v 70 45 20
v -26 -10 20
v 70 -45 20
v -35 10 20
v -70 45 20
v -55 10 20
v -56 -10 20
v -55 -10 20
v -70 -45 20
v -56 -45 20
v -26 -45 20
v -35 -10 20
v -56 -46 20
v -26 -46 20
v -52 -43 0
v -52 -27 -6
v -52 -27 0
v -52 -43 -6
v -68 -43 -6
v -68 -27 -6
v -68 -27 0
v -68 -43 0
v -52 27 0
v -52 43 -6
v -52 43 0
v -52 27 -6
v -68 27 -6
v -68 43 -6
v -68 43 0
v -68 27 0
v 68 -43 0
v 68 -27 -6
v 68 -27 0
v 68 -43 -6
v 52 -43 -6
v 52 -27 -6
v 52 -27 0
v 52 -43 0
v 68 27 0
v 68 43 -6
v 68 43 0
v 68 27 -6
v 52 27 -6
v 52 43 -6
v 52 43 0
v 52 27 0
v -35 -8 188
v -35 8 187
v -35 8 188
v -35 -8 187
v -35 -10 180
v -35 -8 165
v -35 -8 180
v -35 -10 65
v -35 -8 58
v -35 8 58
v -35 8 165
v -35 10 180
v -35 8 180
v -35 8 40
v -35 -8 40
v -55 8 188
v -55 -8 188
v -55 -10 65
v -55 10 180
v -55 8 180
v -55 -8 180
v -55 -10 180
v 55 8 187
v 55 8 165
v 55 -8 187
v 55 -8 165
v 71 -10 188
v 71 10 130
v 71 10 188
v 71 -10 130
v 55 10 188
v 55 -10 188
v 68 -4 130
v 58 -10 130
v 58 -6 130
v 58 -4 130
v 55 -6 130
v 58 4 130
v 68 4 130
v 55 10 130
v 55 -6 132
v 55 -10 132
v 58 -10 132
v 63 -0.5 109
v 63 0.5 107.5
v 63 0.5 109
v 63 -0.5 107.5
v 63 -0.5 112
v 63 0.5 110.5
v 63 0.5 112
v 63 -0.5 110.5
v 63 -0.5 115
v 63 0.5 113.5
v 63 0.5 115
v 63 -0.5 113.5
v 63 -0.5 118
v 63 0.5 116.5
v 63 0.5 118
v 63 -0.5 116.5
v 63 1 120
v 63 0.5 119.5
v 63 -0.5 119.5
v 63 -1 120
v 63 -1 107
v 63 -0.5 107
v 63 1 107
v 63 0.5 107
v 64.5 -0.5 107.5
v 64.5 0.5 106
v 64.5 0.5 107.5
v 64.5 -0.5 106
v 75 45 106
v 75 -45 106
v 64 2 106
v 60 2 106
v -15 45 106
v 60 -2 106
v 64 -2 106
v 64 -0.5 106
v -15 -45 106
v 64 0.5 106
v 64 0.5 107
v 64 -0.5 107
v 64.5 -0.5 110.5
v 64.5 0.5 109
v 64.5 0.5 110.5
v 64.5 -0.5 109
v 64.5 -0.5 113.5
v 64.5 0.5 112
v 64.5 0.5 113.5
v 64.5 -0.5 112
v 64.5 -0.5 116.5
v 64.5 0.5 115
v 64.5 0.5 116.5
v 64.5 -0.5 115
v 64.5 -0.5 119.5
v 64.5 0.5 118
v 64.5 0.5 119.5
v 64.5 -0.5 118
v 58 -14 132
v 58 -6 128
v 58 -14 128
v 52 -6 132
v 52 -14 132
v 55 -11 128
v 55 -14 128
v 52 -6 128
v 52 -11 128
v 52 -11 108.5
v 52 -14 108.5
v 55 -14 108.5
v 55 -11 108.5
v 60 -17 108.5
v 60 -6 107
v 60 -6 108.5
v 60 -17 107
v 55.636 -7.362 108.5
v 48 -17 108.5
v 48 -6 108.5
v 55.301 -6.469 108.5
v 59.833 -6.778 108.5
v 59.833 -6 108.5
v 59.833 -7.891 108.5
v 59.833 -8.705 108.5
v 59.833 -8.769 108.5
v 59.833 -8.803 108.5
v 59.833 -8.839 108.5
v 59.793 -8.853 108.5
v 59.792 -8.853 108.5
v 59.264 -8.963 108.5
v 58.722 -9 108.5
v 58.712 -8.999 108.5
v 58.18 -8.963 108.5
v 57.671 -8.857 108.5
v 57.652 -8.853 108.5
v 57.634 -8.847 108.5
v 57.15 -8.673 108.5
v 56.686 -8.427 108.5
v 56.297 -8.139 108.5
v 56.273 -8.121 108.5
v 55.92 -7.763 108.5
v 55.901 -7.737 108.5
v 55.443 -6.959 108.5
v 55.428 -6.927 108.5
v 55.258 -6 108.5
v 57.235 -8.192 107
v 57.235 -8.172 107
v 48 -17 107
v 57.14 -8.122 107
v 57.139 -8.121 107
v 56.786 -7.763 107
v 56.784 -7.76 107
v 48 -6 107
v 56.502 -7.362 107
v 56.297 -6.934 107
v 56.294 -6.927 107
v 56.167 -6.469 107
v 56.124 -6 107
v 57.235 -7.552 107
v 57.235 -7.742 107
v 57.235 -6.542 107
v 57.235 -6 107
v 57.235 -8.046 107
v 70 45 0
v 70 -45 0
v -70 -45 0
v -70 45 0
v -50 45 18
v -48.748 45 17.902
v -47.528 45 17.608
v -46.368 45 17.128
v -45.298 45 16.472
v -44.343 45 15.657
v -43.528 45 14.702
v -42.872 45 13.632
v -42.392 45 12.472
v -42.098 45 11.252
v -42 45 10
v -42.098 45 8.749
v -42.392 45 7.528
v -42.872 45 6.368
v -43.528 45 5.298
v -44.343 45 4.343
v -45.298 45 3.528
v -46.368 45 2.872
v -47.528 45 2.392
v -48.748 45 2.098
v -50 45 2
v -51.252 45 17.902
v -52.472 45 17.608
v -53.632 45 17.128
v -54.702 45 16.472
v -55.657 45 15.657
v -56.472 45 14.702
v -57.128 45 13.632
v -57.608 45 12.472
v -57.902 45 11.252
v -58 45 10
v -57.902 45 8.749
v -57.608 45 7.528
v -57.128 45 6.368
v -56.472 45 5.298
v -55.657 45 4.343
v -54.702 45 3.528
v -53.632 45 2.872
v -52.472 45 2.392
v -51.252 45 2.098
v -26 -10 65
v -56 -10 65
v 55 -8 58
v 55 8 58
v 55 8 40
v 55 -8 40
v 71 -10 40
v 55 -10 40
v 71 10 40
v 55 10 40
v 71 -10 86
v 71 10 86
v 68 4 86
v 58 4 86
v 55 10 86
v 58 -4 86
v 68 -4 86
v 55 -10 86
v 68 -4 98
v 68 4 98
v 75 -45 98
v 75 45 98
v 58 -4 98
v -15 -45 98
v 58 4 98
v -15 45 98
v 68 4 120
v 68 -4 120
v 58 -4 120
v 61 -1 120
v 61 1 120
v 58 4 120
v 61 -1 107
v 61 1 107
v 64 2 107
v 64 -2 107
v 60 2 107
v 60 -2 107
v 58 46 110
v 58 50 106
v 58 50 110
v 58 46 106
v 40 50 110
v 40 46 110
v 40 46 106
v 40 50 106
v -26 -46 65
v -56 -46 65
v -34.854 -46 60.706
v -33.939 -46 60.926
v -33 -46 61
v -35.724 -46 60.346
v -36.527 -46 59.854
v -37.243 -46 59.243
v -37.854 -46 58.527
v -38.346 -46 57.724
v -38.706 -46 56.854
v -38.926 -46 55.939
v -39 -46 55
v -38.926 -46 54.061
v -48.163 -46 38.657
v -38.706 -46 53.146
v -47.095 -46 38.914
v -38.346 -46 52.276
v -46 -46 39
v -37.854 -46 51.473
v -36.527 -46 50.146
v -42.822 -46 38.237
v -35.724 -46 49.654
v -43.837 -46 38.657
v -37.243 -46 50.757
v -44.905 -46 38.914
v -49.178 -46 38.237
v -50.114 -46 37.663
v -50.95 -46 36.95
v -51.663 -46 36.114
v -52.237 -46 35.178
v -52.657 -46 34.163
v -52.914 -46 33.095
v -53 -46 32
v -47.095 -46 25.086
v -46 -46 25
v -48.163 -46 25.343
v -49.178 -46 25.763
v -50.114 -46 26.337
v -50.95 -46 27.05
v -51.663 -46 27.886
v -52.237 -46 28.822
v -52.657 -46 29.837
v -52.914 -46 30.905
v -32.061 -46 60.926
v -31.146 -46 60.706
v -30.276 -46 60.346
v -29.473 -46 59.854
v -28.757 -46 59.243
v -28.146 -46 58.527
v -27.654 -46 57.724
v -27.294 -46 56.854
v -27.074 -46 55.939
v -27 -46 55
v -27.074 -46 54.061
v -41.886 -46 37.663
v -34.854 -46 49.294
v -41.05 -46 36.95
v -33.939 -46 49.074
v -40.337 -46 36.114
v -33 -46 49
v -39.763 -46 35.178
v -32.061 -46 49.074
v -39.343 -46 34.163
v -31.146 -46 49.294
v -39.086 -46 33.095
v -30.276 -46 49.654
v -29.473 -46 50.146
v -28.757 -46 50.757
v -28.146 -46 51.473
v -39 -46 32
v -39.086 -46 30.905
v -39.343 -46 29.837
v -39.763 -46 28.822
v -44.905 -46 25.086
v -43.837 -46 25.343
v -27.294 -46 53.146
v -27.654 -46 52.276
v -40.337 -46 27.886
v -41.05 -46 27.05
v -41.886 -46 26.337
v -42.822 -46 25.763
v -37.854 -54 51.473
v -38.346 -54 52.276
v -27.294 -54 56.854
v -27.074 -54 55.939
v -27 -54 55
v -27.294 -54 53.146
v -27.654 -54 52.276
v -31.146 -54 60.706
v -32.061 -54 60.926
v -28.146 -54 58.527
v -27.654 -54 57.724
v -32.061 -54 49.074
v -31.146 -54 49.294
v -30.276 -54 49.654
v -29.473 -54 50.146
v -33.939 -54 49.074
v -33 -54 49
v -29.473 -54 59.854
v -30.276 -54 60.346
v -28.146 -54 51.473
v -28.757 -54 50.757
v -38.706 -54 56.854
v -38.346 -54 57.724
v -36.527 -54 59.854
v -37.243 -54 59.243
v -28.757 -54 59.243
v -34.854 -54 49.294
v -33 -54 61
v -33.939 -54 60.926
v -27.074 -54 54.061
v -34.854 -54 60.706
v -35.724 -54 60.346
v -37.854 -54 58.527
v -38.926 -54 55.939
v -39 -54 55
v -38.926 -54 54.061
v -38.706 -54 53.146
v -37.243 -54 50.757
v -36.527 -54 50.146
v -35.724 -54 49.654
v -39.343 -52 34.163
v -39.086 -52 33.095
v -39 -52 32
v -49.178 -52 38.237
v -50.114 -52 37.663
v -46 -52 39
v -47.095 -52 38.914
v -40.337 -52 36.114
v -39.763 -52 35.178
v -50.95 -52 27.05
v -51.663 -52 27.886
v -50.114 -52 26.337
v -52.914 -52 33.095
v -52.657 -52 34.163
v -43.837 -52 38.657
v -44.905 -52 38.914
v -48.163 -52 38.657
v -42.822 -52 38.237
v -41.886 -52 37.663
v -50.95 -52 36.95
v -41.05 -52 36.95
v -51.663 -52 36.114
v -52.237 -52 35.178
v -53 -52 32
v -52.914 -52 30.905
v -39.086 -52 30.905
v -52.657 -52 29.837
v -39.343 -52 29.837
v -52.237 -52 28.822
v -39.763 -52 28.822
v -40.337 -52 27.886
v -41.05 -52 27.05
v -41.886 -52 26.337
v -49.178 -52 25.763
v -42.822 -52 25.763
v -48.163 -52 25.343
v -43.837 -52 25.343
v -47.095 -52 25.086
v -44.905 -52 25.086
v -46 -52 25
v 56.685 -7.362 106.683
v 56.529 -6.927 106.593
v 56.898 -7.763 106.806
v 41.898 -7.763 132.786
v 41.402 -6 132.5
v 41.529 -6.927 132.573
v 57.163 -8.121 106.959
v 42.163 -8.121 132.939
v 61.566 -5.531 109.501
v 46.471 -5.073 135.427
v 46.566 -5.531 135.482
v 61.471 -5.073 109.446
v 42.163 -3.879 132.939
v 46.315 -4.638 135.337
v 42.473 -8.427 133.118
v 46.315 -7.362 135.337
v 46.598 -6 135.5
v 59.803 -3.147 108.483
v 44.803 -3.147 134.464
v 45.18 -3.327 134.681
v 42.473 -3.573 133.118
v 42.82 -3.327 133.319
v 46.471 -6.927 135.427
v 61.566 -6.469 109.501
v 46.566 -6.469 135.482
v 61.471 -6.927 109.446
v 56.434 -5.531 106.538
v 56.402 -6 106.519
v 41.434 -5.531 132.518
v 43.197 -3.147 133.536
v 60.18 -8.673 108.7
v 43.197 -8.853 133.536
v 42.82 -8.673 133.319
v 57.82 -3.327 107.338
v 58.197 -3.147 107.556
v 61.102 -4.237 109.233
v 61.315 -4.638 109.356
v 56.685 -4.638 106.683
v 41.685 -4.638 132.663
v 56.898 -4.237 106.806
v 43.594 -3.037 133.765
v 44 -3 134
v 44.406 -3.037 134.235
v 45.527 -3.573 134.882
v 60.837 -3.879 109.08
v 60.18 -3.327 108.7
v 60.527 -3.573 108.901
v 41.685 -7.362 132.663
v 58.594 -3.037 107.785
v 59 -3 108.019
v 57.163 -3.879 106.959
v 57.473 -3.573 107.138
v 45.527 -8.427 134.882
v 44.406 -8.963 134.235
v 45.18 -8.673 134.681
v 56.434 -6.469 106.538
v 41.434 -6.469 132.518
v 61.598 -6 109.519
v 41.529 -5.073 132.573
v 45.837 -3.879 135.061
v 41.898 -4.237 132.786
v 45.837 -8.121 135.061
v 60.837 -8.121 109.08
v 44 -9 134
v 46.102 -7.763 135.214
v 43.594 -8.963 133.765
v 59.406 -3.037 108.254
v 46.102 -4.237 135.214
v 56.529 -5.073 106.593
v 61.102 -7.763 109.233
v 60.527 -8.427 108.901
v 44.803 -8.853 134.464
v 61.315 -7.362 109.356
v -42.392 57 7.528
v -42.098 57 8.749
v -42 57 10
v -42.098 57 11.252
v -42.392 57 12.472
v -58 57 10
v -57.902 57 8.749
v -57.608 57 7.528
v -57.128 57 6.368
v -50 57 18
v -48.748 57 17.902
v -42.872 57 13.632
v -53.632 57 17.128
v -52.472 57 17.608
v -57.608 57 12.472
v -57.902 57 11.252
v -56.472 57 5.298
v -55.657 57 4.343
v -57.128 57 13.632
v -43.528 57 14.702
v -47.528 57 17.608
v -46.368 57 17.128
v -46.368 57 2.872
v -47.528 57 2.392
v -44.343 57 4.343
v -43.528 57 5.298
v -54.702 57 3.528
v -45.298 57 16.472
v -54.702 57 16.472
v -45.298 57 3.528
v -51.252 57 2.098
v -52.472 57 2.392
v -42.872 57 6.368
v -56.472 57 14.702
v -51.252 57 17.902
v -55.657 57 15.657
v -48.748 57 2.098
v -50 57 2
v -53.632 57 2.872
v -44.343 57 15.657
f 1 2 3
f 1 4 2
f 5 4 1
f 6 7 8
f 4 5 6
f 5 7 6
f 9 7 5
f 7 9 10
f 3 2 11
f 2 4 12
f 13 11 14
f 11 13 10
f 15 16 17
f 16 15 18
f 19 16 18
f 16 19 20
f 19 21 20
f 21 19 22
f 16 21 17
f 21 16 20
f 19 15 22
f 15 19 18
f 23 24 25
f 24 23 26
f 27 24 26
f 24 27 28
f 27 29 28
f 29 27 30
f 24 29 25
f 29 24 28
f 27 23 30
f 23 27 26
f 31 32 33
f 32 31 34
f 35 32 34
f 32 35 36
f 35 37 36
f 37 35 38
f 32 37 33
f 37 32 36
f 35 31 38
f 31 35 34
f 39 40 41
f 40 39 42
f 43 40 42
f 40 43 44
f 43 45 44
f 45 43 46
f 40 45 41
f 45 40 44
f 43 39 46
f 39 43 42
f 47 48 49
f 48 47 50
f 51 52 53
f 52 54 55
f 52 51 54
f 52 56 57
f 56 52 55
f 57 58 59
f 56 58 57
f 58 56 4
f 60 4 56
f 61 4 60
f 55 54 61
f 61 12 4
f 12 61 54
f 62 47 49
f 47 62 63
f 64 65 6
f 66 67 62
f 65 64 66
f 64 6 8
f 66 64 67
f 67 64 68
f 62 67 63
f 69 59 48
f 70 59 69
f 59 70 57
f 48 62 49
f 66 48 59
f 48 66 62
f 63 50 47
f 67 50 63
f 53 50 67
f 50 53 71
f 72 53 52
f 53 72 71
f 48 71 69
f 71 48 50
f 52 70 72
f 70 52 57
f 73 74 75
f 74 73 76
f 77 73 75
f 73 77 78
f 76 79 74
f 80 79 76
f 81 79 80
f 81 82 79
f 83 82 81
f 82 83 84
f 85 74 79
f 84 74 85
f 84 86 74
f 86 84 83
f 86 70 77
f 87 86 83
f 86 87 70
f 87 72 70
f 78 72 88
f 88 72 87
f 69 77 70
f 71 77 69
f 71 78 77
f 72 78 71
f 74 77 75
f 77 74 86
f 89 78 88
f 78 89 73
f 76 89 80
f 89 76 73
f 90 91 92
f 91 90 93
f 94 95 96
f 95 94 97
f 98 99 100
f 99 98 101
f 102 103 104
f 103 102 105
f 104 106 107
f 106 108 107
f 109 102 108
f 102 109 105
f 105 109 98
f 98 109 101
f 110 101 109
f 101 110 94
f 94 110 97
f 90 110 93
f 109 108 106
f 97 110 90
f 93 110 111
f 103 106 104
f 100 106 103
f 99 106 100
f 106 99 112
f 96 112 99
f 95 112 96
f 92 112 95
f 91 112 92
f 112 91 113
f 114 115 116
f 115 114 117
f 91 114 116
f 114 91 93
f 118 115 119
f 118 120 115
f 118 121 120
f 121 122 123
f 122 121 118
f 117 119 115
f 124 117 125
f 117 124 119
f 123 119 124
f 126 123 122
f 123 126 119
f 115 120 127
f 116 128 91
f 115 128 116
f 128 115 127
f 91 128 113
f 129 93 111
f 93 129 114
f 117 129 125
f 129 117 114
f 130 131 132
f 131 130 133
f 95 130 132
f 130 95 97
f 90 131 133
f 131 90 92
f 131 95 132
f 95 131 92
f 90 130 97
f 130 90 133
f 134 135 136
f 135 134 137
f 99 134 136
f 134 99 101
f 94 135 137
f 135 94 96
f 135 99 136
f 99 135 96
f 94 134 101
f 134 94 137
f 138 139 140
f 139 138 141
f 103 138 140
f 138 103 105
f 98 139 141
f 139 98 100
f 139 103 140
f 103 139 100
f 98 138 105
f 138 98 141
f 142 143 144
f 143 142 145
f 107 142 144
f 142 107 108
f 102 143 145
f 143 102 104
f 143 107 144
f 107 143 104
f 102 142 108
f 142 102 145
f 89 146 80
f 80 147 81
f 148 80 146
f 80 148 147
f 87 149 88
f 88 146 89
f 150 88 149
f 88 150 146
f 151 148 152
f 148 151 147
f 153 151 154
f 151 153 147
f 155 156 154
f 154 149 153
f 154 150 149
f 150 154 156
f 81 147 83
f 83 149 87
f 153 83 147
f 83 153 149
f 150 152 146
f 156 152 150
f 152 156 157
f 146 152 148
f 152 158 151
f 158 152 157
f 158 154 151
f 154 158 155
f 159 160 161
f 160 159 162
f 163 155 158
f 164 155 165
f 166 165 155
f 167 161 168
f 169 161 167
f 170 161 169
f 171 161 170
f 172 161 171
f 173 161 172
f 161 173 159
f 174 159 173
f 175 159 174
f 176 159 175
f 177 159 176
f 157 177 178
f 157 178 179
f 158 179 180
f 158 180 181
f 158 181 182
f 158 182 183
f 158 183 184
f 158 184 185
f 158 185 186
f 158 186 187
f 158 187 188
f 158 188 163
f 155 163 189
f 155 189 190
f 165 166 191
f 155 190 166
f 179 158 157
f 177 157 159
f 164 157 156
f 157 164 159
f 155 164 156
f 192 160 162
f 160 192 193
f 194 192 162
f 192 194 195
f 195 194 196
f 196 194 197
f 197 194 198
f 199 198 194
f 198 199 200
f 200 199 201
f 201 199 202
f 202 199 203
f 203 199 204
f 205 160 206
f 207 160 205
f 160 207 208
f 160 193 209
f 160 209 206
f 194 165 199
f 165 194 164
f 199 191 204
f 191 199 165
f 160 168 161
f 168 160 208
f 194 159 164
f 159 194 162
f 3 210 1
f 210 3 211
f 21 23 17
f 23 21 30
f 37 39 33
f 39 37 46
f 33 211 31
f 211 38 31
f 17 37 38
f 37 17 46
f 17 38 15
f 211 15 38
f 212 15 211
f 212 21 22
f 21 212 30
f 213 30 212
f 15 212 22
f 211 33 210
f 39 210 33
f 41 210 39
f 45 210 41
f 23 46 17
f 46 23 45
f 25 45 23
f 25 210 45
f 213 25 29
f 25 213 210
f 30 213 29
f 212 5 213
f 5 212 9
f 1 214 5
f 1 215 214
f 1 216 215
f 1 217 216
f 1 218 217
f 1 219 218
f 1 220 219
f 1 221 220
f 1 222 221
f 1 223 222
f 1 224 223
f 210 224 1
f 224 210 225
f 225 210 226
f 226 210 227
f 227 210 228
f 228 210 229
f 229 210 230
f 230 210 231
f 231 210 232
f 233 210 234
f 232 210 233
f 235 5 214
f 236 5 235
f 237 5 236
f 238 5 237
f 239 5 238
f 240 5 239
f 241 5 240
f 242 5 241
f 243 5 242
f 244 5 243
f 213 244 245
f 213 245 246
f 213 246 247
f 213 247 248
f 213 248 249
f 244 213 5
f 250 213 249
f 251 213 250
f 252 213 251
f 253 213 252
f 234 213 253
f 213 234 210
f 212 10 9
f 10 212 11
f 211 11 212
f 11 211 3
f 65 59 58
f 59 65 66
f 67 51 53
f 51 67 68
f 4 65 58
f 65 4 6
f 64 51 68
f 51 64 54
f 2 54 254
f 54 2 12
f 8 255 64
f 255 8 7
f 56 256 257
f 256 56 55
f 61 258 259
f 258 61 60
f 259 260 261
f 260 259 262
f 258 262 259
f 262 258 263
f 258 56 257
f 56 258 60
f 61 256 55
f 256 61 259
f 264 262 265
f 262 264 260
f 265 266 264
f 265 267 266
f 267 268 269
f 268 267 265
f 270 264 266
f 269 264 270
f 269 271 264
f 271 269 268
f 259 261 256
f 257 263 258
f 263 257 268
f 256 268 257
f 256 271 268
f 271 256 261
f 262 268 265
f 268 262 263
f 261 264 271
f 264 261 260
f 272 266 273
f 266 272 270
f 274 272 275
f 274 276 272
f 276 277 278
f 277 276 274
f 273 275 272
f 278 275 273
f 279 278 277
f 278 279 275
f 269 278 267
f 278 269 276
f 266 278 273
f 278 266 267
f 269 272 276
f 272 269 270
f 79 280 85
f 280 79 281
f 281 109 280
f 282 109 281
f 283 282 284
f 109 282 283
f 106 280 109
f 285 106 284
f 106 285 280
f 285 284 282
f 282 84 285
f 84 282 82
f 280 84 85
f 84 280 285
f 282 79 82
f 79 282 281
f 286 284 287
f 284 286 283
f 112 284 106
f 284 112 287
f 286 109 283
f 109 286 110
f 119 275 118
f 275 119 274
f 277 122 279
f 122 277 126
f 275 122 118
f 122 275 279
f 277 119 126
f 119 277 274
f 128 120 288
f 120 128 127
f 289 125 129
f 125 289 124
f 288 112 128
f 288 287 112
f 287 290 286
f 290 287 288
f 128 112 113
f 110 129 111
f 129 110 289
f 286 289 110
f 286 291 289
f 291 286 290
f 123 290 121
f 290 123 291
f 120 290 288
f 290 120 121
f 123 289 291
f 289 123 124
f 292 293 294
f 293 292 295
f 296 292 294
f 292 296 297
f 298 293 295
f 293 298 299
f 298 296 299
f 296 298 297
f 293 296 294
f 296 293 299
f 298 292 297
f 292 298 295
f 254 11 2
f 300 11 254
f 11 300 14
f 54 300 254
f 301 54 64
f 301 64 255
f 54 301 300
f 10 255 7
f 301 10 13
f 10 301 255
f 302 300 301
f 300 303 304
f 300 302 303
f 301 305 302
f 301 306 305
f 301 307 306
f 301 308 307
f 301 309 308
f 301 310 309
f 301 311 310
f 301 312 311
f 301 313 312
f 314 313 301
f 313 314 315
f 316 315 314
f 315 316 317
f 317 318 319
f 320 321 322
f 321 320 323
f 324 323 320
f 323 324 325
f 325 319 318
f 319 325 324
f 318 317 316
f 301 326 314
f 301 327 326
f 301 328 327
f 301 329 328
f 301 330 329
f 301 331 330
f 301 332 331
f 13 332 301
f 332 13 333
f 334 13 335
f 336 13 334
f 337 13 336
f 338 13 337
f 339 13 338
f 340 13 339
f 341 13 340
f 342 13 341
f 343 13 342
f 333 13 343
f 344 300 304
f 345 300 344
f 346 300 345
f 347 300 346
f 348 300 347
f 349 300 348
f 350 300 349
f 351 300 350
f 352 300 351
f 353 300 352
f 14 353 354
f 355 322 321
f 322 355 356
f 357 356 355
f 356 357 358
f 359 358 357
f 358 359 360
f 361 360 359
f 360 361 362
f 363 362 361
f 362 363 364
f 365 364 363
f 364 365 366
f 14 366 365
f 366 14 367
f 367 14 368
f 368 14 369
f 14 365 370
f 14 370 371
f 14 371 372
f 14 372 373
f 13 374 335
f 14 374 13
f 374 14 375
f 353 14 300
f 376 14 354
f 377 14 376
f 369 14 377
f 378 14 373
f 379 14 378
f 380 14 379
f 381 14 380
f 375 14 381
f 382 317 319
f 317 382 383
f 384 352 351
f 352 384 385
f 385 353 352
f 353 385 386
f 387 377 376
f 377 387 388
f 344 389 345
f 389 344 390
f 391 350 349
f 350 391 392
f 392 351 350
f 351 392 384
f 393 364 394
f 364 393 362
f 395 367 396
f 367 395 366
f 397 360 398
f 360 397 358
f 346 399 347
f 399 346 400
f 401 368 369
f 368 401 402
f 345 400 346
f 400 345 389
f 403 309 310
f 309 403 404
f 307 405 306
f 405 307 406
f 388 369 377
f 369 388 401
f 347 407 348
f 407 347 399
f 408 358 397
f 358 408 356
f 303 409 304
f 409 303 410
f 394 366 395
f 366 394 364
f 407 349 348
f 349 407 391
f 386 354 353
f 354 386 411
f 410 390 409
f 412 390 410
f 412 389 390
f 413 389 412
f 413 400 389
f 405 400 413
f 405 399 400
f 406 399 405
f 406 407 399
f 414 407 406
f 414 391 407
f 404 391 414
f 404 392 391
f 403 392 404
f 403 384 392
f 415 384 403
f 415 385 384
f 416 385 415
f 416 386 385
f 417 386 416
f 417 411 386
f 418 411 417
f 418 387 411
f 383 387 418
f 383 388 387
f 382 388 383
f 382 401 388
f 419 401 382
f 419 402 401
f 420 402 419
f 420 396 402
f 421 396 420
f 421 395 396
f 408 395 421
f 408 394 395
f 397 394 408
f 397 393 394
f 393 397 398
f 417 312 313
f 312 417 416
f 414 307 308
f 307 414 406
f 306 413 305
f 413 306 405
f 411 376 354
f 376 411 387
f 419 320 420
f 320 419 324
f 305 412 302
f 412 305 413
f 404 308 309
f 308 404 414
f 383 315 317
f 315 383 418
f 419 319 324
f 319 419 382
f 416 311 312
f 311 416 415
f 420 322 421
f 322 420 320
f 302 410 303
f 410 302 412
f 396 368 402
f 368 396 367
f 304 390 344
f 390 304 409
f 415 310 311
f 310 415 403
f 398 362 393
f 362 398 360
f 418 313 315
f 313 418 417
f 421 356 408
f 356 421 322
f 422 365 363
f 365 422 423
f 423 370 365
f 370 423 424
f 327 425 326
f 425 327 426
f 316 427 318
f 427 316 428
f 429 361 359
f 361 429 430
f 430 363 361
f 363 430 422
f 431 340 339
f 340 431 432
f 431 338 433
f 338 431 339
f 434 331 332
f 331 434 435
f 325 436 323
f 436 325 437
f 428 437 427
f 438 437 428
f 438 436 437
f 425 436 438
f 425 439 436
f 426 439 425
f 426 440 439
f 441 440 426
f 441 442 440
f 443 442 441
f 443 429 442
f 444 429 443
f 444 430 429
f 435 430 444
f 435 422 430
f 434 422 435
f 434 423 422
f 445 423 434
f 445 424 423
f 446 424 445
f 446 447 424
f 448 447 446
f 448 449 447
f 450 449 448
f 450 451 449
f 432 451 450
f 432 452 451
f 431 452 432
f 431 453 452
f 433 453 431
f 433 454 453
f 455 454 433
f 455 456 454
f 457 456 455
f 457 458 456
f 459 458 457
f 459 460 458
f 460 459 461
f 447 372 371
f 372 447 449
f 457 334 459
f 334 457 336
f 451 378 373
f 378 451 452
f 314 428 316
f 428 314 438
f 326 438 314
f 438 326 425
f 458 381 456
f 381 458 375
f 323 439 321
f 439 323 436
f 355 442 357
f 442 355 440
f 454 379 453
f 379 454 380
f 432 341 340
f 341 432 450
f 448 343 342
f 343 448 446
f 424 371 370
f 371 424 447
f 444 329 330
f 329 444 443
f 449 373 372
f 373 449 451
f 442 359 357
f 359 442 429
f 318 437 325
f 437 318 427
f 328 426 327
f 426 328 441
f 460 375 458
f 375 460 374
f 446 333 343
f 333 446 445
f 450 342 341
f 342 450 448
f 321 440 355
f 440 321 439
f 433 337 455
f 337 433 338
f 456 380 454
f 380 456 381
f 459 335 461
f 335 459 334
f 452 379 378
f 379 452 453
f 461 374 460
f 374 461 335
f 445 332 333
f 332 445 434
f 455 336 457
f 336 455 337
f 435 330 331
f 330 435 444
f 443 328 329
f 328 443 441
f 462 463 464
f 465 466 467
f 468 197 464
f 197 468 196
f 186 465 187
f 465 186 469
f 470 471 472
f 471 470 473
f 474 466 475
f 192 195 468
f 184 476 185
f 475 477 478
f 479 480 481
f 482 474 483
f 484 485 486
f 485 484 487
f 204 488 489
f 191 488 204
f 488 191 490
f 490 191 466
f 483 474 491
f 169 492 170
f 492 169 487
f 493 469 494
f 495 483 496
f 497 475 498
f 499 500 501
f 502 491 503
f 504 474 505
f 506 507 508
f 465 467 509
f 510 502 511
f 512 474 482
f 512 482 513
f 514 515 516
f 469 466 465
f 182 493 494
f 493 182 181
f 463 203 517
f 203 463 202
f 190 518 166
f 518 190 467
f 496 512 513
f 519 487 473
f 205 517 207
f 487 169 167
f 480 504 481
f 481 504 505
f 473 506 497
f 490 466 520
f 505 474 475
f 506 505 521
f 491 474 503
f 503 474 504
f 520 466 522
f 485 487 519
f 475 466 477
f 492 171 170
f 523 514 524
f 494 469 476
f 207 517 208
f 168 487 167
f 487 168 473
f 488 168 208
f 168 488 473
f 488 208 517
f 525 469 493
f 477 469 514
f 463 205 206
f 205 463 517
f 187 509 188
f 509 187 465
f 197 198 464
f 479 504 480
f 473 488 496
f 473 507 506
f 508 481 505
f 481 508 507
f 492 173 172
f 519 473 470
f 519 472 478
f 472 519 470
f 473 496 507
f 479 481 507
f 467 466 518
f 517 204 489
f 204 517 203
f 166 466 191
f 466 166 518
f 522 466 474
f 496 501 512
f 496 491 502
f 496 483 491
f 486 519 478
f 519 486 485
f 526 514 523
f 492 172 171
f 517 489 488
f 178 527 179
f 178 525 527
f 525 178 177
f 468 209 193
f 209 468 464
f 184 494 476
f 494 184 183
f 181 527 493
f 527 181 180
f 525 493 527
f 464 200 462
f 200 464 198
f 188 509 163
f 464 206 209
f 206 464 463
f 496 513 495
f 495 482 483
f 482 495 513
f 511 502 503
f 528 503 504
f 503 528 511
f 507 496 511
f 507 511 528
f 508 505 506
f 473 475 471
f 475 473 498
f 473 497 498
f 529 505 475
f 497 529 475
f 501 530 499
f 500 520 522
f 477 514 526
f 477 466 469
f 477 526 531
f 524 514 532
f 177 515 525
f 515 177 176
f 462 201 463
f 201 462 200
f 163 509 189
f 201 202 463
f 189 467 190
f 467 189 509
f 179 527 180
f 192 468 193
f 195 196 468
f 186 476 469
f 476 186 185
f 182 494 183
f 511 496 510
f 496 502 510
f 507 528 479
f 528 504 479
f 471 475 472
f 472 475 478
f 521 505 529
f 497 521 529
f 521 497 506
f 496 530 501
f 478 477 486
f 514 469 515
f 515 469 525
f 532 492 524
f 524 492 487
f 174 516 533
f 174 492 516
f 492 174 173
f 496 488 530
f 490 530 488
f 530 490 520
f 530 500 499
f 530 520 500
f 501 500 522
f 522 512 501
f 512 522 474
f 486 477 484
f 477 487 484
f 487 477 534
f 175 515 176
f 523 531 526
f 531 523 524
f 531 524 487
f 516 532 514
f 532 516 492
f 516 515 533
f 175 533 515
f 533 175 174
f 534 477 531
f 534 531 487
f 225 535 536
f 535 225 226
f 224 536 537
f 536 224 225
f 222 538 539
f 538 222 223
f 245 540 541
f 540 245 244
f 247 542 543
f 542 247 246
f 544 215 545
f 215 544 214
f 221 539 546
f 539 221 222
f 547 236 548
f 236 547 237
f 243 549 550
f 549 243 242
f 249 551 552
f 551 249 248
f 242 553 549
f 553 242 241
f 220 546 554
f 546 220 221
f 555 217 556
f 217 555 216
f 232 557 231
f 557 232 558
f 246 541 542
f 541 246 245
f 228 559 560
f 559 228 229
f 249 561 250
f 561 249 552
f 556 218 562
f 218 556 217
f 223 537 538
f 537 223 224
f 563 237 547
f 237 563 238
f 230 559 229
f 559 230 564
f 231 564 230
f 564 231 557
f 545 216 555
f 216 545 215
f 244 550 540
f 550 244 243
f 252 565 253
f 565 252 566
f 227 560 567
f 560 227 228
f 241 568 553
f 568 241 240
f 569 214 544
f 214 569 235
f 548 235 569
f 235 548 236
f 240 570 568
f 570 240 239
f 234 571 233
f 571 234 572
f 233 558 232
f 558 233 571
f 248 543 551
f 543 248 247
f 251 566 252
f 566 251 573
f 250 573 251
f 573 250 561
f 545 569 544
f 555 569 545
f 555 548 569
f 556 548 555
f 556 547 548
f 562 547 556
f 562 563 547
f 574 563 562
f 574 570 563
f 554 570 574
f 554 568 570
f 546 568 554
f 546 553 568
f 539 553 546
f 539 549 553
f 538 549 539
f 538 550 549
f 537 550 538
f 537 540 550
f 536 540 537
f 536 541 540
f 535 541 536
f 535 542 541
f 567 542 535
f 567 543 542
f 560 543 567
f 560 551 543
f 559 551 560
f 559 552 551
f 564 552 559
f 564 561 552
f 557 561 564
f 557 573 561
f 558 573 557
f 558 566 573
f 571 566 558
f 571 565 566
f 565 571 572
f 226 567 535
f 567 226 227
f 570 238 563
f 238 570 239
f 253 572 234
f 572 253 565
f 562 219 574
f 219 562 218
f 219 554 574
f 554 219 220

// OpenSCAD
// 線鋸機 Scroll Saw — 機台 + 上下臂 + 鋸片
// 座標約定：立柱在 -X 後方，懸臂往 +X 伸出，操作者站在 +X 側面對機台；-Y 為操作者左手邊（控制面板）。
// 高度關鍵尺寸：工作台面 z=106、下夾頭 z=86~98（台面下）、上夾頭 z=120~132、鋸片 z=86~132 穿過台面。
$fn = 40;

// 底座（鑄鐵，深灰）
color([0.28, 0.28, 0.30])
  translate([-70, -45, 0]) cube([140, 90, 20]);
// 底座加強肋
color([0.22, 0.22, 0.24])
  for (x = [-40, 0, 40])
    translate([x-3, -43, 4]) cube([6, 86, 16]);
// 腳墊（四角）
color([0.12, 0.12, 0.14])
  for (px = [-60, 60]) for (py = [-35, 35])
    translate([px-8, py-8, -6]) cube([16, 16, 8]);

// 機台主柱（左後方立柱）
color([0.32, 0.32, 0.35])
  translate([-55, -10, 20]) cube([20, 20, 160]);

// 下臂（水平，連接立柱到鋸片下方）
color([0.38, 0.38, 0.40])
  translate([-35, -8, 40]) cube([100, 16, 18]);

// 下臂前端（支撐下夾頭；頂到 z=86，不能高過下夾頭）
color([0.35, 0.35, 0.37])
  translate([55, -10, 40]) cube([16, 20, 46]);

// 下端夾頭（在工作台「下方」，台面底 z=98）
color([0.55, 0.56, 0.58])
  translate([58, -4, 86]) cube([10, 8, 12]);

// 上臂（弧形連接，連接立柱到鋸片上方；前端垂柱停在 z=130，下面接上夾頭）
color([0.38, 0.38, 0.40]) {
  translate([-55, -8, 170]) cube([20, 16, 18]);
  translate([-35, -8, 165]) cube([100, 16, 22]);
  translate([55, -10, 130]) cube([16, 20, 58]);
}

// 上端夾頭（掛在上臂前端下方，台面上方約 14mm 淨空給木料）
color([0.55, 0.56, 0.58])
  translate([58, -4, 120]) cube([10, 8, 12]);

// 鋸片（細長，金屬色；由下夾頭穿過工作台到上夾頭）
color([0.70, 0.72, 0.75])
  translate([61, -1, 86]) cube([2, 2, 46]);
// 鋸齒（示意；在 +X 前緣，面向操作者）
color([0.55, 0.56, 0.58])
  for (z = [88:3:130])
    translate([63, -0.5, z]) cube([1.5, 1, 1.5]);

// 工作台（水平平台，台面 z=106）
color([0.42, 0.43, 0.45])
  translate([-15, -45, 98]) cube([90, 90, 8]);
// 工作台插槽（鋸片通過孔）
color([0.20, 0.20, 0.22])
  translate([60, -2, 97]) cube([4, 4, 10]);

// 壓料腳（hold-down）：從上臂前端垂下的桿子 + 停在台面上方的腳座，緊鄰鋸片側邊
color([0.50, 0.50, 0.52]) {
  translate([52, -14, 128]) cube([6, 8, 4]);      // 固定座（接上臂前端）
  translate([52, -14, 108]) cube([3, 3, 22]);     // 垂直桿
  translate([48, -17, 107]) cube([12, 11, 1.5]);  // 腳座（台面上方約一片薄板厚）
}

// 工作台燈（LED 條）
color([0.88, 0.88, 0.20, 0.8])
  translate([40, 46, 106]) cube([18, 4, 4]);

// 控制盒（固定在底座前緣、靠立柱）
color([0.24, 0.24, 0.26])
  translate([-56, -46, 20]) cube([30, 36, 45]);
// 速度調節旋鈕（控制盒前面板）
color([0.82, 0.82, 0.85])
  translate([-33, -46, 55]) rotate([90, 0, 0]) cylinder(h = 8, r = 6);
// 電源開關（大紅色，控制盒前面板）
color([0.85, 0.08, 0.08])
  translate([-46, -46, 32]) rotate([90, 0, 0]) cylinder(h = 6, r = 7);

// 下吹管（吹走木屑）：從上臂前端斜下對準鋸片切割點
color([0.55, 0.56, 0.58])
  translate([44, -6, 134]) rotate([0, 150, 0]) cylinder(h = 30, r = 3);

// 集塵袋接口（底座後方，朝 +Y 伸出）
color([0.30, 0.30, 0.33])
  translate([-50, 45, 10]) rotate([-90, 0, 0]) cylinder(h = 12, r = 8);
